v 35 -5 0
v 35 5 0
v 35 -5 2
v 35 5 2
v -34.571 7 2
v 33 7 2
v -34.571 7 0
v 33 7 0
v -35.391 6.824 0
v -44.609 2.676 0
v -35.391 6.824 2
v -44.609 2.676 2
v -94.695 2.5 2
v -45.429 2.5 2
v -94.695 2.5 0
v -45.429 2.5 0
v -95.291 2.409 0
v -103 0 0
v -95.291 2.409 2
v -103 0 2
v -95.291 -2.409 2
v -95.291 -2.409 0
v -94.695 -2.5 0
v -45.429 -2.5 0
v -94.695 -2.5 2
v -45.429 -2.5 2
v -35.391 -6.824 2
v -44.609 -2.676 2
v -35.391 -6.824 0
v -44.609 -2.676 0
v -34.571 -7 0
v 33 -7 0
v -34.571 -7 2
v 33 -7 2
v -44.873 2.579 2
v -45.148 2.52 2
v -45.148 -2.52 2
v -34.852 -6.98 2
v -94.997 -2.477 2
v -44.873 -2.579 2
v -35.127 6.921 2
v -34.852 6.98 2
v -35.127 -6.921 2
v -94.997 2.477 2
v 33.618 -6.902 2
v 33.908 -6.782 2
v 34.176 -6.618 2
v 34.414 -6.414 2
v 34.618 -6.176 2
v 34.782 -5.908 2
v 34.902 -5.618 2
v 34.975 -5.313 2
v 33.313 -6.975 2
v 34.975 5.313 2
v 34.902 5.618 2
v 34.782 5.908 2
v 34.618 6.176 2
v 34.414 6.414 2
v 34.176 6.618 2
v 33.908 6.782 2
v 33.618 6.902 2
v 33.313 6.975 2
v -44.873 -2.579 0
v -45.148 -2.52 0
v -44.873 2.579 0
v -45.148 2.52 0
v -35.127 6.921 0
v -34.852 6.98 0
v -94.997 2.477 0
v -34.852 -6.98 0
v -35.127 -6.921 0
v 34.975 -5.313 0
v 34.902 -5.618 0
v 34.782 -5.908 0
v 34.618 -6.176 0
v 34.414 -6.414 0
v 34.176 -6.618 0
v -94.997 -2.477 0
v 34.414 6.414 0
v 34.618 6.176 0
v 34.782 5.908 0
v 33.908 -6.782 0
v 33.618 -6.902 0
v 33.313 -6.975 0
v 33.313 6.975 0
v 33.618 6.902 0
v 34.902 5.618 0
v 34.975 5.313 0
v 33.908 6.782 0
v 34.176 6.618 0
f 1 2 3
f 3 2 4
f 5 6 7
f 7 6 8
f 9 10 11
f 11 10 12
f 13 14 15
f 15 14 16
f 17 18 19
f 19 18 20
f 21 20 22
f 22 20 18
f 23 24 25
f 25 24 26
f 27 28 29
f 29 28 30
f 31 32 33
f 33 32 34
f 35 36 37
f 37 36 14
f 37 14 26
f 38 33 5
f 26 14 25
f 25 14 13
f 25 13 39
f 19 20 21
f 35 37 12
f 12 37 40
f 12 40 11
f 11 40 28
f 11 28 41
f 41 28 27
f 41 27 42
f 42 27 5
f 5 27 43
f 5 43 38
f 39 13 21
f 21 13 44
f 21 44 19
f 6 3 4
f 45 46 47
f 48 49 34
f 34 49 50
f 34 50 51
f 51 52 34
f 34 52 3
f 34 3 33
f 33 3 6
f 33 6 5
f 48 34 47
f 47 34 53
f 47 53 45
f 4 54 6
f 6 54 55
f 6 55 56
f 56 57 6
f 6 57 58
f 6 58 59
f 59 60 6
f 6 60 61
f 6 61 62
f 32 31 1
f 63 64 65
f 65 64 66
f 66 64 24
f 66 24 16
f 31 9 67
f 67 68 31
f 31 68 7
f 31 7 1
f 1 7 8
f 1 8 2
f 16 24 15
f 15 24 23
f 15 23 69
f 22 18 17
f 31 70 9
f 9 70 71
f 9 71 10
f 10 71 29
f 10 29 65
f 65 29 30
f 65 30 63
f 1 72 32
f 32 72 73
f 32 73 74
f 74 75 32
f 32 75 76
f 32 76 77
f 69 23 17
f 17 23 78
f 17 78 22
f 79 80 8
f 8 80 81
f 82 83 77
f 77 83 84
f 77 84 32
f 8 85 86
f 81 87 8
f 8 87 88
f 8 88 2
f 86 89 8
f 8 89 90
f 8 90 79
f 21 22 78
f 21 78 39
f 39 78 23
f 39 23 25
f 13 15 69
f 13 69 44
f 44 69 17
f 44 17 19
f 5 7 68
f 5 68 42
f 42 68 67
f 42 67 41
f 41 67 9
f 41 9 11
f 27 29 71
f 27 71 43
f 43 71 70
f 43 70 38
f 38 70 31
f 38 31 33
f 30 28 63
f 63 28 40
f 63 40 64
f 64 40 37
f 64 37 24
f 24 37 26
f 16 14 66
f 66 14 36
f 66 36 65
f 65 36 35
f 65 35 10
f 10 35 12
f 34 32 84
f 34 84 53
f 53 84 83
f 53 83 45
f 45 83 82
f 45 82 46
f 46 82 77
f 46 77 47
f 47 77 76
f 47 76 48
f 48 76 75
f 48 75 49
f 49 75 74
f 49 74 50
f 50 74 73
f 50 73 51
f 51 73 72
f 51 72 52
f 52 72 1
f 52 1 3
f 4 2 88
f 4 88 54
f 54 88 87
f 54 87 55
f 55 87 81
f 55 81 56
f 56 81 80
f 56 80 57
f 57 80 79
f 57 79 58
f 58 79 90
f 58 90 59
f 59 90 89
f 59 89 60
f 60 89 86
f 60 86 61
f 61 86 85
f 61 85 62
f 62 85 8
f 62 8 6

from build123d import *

# Parameters (mm, degrees)
BOSS_EXTRUDE1_DEPTH = 2
FILLET1_R           = 2


with BuildPart() as part:
    # Sketch1 → Boss-Extrude1 (new body)
    with BuildSketch(Plane.XY):
        Polygon((-35, 7), (-45, 2.5), (-95, 2.5), (-103, 0), (-95, -2.5), (-45, -2.5), (-35, -7), (35, -7), (35, 7), align=None)
    extrude(amount=BOSS_EXTRUDE1_DEPTH)

    # Fillet1
    fillet1_edges = [part.edges().sort_by_distance(p)[0] for p in [
        (35, -7, 1),
        (-35, -7, 1),
        (-45, -2.5, 1),
        (-95, -2.5, 1),
        (-95, 2.5, 1),
        (-45, 2.5, 1),
        (-35, 7, 1),
        (35, 7, 1),
    ]]
    fillet(fillet1_edges, radius=FILLET1_R)


solid = part.part
